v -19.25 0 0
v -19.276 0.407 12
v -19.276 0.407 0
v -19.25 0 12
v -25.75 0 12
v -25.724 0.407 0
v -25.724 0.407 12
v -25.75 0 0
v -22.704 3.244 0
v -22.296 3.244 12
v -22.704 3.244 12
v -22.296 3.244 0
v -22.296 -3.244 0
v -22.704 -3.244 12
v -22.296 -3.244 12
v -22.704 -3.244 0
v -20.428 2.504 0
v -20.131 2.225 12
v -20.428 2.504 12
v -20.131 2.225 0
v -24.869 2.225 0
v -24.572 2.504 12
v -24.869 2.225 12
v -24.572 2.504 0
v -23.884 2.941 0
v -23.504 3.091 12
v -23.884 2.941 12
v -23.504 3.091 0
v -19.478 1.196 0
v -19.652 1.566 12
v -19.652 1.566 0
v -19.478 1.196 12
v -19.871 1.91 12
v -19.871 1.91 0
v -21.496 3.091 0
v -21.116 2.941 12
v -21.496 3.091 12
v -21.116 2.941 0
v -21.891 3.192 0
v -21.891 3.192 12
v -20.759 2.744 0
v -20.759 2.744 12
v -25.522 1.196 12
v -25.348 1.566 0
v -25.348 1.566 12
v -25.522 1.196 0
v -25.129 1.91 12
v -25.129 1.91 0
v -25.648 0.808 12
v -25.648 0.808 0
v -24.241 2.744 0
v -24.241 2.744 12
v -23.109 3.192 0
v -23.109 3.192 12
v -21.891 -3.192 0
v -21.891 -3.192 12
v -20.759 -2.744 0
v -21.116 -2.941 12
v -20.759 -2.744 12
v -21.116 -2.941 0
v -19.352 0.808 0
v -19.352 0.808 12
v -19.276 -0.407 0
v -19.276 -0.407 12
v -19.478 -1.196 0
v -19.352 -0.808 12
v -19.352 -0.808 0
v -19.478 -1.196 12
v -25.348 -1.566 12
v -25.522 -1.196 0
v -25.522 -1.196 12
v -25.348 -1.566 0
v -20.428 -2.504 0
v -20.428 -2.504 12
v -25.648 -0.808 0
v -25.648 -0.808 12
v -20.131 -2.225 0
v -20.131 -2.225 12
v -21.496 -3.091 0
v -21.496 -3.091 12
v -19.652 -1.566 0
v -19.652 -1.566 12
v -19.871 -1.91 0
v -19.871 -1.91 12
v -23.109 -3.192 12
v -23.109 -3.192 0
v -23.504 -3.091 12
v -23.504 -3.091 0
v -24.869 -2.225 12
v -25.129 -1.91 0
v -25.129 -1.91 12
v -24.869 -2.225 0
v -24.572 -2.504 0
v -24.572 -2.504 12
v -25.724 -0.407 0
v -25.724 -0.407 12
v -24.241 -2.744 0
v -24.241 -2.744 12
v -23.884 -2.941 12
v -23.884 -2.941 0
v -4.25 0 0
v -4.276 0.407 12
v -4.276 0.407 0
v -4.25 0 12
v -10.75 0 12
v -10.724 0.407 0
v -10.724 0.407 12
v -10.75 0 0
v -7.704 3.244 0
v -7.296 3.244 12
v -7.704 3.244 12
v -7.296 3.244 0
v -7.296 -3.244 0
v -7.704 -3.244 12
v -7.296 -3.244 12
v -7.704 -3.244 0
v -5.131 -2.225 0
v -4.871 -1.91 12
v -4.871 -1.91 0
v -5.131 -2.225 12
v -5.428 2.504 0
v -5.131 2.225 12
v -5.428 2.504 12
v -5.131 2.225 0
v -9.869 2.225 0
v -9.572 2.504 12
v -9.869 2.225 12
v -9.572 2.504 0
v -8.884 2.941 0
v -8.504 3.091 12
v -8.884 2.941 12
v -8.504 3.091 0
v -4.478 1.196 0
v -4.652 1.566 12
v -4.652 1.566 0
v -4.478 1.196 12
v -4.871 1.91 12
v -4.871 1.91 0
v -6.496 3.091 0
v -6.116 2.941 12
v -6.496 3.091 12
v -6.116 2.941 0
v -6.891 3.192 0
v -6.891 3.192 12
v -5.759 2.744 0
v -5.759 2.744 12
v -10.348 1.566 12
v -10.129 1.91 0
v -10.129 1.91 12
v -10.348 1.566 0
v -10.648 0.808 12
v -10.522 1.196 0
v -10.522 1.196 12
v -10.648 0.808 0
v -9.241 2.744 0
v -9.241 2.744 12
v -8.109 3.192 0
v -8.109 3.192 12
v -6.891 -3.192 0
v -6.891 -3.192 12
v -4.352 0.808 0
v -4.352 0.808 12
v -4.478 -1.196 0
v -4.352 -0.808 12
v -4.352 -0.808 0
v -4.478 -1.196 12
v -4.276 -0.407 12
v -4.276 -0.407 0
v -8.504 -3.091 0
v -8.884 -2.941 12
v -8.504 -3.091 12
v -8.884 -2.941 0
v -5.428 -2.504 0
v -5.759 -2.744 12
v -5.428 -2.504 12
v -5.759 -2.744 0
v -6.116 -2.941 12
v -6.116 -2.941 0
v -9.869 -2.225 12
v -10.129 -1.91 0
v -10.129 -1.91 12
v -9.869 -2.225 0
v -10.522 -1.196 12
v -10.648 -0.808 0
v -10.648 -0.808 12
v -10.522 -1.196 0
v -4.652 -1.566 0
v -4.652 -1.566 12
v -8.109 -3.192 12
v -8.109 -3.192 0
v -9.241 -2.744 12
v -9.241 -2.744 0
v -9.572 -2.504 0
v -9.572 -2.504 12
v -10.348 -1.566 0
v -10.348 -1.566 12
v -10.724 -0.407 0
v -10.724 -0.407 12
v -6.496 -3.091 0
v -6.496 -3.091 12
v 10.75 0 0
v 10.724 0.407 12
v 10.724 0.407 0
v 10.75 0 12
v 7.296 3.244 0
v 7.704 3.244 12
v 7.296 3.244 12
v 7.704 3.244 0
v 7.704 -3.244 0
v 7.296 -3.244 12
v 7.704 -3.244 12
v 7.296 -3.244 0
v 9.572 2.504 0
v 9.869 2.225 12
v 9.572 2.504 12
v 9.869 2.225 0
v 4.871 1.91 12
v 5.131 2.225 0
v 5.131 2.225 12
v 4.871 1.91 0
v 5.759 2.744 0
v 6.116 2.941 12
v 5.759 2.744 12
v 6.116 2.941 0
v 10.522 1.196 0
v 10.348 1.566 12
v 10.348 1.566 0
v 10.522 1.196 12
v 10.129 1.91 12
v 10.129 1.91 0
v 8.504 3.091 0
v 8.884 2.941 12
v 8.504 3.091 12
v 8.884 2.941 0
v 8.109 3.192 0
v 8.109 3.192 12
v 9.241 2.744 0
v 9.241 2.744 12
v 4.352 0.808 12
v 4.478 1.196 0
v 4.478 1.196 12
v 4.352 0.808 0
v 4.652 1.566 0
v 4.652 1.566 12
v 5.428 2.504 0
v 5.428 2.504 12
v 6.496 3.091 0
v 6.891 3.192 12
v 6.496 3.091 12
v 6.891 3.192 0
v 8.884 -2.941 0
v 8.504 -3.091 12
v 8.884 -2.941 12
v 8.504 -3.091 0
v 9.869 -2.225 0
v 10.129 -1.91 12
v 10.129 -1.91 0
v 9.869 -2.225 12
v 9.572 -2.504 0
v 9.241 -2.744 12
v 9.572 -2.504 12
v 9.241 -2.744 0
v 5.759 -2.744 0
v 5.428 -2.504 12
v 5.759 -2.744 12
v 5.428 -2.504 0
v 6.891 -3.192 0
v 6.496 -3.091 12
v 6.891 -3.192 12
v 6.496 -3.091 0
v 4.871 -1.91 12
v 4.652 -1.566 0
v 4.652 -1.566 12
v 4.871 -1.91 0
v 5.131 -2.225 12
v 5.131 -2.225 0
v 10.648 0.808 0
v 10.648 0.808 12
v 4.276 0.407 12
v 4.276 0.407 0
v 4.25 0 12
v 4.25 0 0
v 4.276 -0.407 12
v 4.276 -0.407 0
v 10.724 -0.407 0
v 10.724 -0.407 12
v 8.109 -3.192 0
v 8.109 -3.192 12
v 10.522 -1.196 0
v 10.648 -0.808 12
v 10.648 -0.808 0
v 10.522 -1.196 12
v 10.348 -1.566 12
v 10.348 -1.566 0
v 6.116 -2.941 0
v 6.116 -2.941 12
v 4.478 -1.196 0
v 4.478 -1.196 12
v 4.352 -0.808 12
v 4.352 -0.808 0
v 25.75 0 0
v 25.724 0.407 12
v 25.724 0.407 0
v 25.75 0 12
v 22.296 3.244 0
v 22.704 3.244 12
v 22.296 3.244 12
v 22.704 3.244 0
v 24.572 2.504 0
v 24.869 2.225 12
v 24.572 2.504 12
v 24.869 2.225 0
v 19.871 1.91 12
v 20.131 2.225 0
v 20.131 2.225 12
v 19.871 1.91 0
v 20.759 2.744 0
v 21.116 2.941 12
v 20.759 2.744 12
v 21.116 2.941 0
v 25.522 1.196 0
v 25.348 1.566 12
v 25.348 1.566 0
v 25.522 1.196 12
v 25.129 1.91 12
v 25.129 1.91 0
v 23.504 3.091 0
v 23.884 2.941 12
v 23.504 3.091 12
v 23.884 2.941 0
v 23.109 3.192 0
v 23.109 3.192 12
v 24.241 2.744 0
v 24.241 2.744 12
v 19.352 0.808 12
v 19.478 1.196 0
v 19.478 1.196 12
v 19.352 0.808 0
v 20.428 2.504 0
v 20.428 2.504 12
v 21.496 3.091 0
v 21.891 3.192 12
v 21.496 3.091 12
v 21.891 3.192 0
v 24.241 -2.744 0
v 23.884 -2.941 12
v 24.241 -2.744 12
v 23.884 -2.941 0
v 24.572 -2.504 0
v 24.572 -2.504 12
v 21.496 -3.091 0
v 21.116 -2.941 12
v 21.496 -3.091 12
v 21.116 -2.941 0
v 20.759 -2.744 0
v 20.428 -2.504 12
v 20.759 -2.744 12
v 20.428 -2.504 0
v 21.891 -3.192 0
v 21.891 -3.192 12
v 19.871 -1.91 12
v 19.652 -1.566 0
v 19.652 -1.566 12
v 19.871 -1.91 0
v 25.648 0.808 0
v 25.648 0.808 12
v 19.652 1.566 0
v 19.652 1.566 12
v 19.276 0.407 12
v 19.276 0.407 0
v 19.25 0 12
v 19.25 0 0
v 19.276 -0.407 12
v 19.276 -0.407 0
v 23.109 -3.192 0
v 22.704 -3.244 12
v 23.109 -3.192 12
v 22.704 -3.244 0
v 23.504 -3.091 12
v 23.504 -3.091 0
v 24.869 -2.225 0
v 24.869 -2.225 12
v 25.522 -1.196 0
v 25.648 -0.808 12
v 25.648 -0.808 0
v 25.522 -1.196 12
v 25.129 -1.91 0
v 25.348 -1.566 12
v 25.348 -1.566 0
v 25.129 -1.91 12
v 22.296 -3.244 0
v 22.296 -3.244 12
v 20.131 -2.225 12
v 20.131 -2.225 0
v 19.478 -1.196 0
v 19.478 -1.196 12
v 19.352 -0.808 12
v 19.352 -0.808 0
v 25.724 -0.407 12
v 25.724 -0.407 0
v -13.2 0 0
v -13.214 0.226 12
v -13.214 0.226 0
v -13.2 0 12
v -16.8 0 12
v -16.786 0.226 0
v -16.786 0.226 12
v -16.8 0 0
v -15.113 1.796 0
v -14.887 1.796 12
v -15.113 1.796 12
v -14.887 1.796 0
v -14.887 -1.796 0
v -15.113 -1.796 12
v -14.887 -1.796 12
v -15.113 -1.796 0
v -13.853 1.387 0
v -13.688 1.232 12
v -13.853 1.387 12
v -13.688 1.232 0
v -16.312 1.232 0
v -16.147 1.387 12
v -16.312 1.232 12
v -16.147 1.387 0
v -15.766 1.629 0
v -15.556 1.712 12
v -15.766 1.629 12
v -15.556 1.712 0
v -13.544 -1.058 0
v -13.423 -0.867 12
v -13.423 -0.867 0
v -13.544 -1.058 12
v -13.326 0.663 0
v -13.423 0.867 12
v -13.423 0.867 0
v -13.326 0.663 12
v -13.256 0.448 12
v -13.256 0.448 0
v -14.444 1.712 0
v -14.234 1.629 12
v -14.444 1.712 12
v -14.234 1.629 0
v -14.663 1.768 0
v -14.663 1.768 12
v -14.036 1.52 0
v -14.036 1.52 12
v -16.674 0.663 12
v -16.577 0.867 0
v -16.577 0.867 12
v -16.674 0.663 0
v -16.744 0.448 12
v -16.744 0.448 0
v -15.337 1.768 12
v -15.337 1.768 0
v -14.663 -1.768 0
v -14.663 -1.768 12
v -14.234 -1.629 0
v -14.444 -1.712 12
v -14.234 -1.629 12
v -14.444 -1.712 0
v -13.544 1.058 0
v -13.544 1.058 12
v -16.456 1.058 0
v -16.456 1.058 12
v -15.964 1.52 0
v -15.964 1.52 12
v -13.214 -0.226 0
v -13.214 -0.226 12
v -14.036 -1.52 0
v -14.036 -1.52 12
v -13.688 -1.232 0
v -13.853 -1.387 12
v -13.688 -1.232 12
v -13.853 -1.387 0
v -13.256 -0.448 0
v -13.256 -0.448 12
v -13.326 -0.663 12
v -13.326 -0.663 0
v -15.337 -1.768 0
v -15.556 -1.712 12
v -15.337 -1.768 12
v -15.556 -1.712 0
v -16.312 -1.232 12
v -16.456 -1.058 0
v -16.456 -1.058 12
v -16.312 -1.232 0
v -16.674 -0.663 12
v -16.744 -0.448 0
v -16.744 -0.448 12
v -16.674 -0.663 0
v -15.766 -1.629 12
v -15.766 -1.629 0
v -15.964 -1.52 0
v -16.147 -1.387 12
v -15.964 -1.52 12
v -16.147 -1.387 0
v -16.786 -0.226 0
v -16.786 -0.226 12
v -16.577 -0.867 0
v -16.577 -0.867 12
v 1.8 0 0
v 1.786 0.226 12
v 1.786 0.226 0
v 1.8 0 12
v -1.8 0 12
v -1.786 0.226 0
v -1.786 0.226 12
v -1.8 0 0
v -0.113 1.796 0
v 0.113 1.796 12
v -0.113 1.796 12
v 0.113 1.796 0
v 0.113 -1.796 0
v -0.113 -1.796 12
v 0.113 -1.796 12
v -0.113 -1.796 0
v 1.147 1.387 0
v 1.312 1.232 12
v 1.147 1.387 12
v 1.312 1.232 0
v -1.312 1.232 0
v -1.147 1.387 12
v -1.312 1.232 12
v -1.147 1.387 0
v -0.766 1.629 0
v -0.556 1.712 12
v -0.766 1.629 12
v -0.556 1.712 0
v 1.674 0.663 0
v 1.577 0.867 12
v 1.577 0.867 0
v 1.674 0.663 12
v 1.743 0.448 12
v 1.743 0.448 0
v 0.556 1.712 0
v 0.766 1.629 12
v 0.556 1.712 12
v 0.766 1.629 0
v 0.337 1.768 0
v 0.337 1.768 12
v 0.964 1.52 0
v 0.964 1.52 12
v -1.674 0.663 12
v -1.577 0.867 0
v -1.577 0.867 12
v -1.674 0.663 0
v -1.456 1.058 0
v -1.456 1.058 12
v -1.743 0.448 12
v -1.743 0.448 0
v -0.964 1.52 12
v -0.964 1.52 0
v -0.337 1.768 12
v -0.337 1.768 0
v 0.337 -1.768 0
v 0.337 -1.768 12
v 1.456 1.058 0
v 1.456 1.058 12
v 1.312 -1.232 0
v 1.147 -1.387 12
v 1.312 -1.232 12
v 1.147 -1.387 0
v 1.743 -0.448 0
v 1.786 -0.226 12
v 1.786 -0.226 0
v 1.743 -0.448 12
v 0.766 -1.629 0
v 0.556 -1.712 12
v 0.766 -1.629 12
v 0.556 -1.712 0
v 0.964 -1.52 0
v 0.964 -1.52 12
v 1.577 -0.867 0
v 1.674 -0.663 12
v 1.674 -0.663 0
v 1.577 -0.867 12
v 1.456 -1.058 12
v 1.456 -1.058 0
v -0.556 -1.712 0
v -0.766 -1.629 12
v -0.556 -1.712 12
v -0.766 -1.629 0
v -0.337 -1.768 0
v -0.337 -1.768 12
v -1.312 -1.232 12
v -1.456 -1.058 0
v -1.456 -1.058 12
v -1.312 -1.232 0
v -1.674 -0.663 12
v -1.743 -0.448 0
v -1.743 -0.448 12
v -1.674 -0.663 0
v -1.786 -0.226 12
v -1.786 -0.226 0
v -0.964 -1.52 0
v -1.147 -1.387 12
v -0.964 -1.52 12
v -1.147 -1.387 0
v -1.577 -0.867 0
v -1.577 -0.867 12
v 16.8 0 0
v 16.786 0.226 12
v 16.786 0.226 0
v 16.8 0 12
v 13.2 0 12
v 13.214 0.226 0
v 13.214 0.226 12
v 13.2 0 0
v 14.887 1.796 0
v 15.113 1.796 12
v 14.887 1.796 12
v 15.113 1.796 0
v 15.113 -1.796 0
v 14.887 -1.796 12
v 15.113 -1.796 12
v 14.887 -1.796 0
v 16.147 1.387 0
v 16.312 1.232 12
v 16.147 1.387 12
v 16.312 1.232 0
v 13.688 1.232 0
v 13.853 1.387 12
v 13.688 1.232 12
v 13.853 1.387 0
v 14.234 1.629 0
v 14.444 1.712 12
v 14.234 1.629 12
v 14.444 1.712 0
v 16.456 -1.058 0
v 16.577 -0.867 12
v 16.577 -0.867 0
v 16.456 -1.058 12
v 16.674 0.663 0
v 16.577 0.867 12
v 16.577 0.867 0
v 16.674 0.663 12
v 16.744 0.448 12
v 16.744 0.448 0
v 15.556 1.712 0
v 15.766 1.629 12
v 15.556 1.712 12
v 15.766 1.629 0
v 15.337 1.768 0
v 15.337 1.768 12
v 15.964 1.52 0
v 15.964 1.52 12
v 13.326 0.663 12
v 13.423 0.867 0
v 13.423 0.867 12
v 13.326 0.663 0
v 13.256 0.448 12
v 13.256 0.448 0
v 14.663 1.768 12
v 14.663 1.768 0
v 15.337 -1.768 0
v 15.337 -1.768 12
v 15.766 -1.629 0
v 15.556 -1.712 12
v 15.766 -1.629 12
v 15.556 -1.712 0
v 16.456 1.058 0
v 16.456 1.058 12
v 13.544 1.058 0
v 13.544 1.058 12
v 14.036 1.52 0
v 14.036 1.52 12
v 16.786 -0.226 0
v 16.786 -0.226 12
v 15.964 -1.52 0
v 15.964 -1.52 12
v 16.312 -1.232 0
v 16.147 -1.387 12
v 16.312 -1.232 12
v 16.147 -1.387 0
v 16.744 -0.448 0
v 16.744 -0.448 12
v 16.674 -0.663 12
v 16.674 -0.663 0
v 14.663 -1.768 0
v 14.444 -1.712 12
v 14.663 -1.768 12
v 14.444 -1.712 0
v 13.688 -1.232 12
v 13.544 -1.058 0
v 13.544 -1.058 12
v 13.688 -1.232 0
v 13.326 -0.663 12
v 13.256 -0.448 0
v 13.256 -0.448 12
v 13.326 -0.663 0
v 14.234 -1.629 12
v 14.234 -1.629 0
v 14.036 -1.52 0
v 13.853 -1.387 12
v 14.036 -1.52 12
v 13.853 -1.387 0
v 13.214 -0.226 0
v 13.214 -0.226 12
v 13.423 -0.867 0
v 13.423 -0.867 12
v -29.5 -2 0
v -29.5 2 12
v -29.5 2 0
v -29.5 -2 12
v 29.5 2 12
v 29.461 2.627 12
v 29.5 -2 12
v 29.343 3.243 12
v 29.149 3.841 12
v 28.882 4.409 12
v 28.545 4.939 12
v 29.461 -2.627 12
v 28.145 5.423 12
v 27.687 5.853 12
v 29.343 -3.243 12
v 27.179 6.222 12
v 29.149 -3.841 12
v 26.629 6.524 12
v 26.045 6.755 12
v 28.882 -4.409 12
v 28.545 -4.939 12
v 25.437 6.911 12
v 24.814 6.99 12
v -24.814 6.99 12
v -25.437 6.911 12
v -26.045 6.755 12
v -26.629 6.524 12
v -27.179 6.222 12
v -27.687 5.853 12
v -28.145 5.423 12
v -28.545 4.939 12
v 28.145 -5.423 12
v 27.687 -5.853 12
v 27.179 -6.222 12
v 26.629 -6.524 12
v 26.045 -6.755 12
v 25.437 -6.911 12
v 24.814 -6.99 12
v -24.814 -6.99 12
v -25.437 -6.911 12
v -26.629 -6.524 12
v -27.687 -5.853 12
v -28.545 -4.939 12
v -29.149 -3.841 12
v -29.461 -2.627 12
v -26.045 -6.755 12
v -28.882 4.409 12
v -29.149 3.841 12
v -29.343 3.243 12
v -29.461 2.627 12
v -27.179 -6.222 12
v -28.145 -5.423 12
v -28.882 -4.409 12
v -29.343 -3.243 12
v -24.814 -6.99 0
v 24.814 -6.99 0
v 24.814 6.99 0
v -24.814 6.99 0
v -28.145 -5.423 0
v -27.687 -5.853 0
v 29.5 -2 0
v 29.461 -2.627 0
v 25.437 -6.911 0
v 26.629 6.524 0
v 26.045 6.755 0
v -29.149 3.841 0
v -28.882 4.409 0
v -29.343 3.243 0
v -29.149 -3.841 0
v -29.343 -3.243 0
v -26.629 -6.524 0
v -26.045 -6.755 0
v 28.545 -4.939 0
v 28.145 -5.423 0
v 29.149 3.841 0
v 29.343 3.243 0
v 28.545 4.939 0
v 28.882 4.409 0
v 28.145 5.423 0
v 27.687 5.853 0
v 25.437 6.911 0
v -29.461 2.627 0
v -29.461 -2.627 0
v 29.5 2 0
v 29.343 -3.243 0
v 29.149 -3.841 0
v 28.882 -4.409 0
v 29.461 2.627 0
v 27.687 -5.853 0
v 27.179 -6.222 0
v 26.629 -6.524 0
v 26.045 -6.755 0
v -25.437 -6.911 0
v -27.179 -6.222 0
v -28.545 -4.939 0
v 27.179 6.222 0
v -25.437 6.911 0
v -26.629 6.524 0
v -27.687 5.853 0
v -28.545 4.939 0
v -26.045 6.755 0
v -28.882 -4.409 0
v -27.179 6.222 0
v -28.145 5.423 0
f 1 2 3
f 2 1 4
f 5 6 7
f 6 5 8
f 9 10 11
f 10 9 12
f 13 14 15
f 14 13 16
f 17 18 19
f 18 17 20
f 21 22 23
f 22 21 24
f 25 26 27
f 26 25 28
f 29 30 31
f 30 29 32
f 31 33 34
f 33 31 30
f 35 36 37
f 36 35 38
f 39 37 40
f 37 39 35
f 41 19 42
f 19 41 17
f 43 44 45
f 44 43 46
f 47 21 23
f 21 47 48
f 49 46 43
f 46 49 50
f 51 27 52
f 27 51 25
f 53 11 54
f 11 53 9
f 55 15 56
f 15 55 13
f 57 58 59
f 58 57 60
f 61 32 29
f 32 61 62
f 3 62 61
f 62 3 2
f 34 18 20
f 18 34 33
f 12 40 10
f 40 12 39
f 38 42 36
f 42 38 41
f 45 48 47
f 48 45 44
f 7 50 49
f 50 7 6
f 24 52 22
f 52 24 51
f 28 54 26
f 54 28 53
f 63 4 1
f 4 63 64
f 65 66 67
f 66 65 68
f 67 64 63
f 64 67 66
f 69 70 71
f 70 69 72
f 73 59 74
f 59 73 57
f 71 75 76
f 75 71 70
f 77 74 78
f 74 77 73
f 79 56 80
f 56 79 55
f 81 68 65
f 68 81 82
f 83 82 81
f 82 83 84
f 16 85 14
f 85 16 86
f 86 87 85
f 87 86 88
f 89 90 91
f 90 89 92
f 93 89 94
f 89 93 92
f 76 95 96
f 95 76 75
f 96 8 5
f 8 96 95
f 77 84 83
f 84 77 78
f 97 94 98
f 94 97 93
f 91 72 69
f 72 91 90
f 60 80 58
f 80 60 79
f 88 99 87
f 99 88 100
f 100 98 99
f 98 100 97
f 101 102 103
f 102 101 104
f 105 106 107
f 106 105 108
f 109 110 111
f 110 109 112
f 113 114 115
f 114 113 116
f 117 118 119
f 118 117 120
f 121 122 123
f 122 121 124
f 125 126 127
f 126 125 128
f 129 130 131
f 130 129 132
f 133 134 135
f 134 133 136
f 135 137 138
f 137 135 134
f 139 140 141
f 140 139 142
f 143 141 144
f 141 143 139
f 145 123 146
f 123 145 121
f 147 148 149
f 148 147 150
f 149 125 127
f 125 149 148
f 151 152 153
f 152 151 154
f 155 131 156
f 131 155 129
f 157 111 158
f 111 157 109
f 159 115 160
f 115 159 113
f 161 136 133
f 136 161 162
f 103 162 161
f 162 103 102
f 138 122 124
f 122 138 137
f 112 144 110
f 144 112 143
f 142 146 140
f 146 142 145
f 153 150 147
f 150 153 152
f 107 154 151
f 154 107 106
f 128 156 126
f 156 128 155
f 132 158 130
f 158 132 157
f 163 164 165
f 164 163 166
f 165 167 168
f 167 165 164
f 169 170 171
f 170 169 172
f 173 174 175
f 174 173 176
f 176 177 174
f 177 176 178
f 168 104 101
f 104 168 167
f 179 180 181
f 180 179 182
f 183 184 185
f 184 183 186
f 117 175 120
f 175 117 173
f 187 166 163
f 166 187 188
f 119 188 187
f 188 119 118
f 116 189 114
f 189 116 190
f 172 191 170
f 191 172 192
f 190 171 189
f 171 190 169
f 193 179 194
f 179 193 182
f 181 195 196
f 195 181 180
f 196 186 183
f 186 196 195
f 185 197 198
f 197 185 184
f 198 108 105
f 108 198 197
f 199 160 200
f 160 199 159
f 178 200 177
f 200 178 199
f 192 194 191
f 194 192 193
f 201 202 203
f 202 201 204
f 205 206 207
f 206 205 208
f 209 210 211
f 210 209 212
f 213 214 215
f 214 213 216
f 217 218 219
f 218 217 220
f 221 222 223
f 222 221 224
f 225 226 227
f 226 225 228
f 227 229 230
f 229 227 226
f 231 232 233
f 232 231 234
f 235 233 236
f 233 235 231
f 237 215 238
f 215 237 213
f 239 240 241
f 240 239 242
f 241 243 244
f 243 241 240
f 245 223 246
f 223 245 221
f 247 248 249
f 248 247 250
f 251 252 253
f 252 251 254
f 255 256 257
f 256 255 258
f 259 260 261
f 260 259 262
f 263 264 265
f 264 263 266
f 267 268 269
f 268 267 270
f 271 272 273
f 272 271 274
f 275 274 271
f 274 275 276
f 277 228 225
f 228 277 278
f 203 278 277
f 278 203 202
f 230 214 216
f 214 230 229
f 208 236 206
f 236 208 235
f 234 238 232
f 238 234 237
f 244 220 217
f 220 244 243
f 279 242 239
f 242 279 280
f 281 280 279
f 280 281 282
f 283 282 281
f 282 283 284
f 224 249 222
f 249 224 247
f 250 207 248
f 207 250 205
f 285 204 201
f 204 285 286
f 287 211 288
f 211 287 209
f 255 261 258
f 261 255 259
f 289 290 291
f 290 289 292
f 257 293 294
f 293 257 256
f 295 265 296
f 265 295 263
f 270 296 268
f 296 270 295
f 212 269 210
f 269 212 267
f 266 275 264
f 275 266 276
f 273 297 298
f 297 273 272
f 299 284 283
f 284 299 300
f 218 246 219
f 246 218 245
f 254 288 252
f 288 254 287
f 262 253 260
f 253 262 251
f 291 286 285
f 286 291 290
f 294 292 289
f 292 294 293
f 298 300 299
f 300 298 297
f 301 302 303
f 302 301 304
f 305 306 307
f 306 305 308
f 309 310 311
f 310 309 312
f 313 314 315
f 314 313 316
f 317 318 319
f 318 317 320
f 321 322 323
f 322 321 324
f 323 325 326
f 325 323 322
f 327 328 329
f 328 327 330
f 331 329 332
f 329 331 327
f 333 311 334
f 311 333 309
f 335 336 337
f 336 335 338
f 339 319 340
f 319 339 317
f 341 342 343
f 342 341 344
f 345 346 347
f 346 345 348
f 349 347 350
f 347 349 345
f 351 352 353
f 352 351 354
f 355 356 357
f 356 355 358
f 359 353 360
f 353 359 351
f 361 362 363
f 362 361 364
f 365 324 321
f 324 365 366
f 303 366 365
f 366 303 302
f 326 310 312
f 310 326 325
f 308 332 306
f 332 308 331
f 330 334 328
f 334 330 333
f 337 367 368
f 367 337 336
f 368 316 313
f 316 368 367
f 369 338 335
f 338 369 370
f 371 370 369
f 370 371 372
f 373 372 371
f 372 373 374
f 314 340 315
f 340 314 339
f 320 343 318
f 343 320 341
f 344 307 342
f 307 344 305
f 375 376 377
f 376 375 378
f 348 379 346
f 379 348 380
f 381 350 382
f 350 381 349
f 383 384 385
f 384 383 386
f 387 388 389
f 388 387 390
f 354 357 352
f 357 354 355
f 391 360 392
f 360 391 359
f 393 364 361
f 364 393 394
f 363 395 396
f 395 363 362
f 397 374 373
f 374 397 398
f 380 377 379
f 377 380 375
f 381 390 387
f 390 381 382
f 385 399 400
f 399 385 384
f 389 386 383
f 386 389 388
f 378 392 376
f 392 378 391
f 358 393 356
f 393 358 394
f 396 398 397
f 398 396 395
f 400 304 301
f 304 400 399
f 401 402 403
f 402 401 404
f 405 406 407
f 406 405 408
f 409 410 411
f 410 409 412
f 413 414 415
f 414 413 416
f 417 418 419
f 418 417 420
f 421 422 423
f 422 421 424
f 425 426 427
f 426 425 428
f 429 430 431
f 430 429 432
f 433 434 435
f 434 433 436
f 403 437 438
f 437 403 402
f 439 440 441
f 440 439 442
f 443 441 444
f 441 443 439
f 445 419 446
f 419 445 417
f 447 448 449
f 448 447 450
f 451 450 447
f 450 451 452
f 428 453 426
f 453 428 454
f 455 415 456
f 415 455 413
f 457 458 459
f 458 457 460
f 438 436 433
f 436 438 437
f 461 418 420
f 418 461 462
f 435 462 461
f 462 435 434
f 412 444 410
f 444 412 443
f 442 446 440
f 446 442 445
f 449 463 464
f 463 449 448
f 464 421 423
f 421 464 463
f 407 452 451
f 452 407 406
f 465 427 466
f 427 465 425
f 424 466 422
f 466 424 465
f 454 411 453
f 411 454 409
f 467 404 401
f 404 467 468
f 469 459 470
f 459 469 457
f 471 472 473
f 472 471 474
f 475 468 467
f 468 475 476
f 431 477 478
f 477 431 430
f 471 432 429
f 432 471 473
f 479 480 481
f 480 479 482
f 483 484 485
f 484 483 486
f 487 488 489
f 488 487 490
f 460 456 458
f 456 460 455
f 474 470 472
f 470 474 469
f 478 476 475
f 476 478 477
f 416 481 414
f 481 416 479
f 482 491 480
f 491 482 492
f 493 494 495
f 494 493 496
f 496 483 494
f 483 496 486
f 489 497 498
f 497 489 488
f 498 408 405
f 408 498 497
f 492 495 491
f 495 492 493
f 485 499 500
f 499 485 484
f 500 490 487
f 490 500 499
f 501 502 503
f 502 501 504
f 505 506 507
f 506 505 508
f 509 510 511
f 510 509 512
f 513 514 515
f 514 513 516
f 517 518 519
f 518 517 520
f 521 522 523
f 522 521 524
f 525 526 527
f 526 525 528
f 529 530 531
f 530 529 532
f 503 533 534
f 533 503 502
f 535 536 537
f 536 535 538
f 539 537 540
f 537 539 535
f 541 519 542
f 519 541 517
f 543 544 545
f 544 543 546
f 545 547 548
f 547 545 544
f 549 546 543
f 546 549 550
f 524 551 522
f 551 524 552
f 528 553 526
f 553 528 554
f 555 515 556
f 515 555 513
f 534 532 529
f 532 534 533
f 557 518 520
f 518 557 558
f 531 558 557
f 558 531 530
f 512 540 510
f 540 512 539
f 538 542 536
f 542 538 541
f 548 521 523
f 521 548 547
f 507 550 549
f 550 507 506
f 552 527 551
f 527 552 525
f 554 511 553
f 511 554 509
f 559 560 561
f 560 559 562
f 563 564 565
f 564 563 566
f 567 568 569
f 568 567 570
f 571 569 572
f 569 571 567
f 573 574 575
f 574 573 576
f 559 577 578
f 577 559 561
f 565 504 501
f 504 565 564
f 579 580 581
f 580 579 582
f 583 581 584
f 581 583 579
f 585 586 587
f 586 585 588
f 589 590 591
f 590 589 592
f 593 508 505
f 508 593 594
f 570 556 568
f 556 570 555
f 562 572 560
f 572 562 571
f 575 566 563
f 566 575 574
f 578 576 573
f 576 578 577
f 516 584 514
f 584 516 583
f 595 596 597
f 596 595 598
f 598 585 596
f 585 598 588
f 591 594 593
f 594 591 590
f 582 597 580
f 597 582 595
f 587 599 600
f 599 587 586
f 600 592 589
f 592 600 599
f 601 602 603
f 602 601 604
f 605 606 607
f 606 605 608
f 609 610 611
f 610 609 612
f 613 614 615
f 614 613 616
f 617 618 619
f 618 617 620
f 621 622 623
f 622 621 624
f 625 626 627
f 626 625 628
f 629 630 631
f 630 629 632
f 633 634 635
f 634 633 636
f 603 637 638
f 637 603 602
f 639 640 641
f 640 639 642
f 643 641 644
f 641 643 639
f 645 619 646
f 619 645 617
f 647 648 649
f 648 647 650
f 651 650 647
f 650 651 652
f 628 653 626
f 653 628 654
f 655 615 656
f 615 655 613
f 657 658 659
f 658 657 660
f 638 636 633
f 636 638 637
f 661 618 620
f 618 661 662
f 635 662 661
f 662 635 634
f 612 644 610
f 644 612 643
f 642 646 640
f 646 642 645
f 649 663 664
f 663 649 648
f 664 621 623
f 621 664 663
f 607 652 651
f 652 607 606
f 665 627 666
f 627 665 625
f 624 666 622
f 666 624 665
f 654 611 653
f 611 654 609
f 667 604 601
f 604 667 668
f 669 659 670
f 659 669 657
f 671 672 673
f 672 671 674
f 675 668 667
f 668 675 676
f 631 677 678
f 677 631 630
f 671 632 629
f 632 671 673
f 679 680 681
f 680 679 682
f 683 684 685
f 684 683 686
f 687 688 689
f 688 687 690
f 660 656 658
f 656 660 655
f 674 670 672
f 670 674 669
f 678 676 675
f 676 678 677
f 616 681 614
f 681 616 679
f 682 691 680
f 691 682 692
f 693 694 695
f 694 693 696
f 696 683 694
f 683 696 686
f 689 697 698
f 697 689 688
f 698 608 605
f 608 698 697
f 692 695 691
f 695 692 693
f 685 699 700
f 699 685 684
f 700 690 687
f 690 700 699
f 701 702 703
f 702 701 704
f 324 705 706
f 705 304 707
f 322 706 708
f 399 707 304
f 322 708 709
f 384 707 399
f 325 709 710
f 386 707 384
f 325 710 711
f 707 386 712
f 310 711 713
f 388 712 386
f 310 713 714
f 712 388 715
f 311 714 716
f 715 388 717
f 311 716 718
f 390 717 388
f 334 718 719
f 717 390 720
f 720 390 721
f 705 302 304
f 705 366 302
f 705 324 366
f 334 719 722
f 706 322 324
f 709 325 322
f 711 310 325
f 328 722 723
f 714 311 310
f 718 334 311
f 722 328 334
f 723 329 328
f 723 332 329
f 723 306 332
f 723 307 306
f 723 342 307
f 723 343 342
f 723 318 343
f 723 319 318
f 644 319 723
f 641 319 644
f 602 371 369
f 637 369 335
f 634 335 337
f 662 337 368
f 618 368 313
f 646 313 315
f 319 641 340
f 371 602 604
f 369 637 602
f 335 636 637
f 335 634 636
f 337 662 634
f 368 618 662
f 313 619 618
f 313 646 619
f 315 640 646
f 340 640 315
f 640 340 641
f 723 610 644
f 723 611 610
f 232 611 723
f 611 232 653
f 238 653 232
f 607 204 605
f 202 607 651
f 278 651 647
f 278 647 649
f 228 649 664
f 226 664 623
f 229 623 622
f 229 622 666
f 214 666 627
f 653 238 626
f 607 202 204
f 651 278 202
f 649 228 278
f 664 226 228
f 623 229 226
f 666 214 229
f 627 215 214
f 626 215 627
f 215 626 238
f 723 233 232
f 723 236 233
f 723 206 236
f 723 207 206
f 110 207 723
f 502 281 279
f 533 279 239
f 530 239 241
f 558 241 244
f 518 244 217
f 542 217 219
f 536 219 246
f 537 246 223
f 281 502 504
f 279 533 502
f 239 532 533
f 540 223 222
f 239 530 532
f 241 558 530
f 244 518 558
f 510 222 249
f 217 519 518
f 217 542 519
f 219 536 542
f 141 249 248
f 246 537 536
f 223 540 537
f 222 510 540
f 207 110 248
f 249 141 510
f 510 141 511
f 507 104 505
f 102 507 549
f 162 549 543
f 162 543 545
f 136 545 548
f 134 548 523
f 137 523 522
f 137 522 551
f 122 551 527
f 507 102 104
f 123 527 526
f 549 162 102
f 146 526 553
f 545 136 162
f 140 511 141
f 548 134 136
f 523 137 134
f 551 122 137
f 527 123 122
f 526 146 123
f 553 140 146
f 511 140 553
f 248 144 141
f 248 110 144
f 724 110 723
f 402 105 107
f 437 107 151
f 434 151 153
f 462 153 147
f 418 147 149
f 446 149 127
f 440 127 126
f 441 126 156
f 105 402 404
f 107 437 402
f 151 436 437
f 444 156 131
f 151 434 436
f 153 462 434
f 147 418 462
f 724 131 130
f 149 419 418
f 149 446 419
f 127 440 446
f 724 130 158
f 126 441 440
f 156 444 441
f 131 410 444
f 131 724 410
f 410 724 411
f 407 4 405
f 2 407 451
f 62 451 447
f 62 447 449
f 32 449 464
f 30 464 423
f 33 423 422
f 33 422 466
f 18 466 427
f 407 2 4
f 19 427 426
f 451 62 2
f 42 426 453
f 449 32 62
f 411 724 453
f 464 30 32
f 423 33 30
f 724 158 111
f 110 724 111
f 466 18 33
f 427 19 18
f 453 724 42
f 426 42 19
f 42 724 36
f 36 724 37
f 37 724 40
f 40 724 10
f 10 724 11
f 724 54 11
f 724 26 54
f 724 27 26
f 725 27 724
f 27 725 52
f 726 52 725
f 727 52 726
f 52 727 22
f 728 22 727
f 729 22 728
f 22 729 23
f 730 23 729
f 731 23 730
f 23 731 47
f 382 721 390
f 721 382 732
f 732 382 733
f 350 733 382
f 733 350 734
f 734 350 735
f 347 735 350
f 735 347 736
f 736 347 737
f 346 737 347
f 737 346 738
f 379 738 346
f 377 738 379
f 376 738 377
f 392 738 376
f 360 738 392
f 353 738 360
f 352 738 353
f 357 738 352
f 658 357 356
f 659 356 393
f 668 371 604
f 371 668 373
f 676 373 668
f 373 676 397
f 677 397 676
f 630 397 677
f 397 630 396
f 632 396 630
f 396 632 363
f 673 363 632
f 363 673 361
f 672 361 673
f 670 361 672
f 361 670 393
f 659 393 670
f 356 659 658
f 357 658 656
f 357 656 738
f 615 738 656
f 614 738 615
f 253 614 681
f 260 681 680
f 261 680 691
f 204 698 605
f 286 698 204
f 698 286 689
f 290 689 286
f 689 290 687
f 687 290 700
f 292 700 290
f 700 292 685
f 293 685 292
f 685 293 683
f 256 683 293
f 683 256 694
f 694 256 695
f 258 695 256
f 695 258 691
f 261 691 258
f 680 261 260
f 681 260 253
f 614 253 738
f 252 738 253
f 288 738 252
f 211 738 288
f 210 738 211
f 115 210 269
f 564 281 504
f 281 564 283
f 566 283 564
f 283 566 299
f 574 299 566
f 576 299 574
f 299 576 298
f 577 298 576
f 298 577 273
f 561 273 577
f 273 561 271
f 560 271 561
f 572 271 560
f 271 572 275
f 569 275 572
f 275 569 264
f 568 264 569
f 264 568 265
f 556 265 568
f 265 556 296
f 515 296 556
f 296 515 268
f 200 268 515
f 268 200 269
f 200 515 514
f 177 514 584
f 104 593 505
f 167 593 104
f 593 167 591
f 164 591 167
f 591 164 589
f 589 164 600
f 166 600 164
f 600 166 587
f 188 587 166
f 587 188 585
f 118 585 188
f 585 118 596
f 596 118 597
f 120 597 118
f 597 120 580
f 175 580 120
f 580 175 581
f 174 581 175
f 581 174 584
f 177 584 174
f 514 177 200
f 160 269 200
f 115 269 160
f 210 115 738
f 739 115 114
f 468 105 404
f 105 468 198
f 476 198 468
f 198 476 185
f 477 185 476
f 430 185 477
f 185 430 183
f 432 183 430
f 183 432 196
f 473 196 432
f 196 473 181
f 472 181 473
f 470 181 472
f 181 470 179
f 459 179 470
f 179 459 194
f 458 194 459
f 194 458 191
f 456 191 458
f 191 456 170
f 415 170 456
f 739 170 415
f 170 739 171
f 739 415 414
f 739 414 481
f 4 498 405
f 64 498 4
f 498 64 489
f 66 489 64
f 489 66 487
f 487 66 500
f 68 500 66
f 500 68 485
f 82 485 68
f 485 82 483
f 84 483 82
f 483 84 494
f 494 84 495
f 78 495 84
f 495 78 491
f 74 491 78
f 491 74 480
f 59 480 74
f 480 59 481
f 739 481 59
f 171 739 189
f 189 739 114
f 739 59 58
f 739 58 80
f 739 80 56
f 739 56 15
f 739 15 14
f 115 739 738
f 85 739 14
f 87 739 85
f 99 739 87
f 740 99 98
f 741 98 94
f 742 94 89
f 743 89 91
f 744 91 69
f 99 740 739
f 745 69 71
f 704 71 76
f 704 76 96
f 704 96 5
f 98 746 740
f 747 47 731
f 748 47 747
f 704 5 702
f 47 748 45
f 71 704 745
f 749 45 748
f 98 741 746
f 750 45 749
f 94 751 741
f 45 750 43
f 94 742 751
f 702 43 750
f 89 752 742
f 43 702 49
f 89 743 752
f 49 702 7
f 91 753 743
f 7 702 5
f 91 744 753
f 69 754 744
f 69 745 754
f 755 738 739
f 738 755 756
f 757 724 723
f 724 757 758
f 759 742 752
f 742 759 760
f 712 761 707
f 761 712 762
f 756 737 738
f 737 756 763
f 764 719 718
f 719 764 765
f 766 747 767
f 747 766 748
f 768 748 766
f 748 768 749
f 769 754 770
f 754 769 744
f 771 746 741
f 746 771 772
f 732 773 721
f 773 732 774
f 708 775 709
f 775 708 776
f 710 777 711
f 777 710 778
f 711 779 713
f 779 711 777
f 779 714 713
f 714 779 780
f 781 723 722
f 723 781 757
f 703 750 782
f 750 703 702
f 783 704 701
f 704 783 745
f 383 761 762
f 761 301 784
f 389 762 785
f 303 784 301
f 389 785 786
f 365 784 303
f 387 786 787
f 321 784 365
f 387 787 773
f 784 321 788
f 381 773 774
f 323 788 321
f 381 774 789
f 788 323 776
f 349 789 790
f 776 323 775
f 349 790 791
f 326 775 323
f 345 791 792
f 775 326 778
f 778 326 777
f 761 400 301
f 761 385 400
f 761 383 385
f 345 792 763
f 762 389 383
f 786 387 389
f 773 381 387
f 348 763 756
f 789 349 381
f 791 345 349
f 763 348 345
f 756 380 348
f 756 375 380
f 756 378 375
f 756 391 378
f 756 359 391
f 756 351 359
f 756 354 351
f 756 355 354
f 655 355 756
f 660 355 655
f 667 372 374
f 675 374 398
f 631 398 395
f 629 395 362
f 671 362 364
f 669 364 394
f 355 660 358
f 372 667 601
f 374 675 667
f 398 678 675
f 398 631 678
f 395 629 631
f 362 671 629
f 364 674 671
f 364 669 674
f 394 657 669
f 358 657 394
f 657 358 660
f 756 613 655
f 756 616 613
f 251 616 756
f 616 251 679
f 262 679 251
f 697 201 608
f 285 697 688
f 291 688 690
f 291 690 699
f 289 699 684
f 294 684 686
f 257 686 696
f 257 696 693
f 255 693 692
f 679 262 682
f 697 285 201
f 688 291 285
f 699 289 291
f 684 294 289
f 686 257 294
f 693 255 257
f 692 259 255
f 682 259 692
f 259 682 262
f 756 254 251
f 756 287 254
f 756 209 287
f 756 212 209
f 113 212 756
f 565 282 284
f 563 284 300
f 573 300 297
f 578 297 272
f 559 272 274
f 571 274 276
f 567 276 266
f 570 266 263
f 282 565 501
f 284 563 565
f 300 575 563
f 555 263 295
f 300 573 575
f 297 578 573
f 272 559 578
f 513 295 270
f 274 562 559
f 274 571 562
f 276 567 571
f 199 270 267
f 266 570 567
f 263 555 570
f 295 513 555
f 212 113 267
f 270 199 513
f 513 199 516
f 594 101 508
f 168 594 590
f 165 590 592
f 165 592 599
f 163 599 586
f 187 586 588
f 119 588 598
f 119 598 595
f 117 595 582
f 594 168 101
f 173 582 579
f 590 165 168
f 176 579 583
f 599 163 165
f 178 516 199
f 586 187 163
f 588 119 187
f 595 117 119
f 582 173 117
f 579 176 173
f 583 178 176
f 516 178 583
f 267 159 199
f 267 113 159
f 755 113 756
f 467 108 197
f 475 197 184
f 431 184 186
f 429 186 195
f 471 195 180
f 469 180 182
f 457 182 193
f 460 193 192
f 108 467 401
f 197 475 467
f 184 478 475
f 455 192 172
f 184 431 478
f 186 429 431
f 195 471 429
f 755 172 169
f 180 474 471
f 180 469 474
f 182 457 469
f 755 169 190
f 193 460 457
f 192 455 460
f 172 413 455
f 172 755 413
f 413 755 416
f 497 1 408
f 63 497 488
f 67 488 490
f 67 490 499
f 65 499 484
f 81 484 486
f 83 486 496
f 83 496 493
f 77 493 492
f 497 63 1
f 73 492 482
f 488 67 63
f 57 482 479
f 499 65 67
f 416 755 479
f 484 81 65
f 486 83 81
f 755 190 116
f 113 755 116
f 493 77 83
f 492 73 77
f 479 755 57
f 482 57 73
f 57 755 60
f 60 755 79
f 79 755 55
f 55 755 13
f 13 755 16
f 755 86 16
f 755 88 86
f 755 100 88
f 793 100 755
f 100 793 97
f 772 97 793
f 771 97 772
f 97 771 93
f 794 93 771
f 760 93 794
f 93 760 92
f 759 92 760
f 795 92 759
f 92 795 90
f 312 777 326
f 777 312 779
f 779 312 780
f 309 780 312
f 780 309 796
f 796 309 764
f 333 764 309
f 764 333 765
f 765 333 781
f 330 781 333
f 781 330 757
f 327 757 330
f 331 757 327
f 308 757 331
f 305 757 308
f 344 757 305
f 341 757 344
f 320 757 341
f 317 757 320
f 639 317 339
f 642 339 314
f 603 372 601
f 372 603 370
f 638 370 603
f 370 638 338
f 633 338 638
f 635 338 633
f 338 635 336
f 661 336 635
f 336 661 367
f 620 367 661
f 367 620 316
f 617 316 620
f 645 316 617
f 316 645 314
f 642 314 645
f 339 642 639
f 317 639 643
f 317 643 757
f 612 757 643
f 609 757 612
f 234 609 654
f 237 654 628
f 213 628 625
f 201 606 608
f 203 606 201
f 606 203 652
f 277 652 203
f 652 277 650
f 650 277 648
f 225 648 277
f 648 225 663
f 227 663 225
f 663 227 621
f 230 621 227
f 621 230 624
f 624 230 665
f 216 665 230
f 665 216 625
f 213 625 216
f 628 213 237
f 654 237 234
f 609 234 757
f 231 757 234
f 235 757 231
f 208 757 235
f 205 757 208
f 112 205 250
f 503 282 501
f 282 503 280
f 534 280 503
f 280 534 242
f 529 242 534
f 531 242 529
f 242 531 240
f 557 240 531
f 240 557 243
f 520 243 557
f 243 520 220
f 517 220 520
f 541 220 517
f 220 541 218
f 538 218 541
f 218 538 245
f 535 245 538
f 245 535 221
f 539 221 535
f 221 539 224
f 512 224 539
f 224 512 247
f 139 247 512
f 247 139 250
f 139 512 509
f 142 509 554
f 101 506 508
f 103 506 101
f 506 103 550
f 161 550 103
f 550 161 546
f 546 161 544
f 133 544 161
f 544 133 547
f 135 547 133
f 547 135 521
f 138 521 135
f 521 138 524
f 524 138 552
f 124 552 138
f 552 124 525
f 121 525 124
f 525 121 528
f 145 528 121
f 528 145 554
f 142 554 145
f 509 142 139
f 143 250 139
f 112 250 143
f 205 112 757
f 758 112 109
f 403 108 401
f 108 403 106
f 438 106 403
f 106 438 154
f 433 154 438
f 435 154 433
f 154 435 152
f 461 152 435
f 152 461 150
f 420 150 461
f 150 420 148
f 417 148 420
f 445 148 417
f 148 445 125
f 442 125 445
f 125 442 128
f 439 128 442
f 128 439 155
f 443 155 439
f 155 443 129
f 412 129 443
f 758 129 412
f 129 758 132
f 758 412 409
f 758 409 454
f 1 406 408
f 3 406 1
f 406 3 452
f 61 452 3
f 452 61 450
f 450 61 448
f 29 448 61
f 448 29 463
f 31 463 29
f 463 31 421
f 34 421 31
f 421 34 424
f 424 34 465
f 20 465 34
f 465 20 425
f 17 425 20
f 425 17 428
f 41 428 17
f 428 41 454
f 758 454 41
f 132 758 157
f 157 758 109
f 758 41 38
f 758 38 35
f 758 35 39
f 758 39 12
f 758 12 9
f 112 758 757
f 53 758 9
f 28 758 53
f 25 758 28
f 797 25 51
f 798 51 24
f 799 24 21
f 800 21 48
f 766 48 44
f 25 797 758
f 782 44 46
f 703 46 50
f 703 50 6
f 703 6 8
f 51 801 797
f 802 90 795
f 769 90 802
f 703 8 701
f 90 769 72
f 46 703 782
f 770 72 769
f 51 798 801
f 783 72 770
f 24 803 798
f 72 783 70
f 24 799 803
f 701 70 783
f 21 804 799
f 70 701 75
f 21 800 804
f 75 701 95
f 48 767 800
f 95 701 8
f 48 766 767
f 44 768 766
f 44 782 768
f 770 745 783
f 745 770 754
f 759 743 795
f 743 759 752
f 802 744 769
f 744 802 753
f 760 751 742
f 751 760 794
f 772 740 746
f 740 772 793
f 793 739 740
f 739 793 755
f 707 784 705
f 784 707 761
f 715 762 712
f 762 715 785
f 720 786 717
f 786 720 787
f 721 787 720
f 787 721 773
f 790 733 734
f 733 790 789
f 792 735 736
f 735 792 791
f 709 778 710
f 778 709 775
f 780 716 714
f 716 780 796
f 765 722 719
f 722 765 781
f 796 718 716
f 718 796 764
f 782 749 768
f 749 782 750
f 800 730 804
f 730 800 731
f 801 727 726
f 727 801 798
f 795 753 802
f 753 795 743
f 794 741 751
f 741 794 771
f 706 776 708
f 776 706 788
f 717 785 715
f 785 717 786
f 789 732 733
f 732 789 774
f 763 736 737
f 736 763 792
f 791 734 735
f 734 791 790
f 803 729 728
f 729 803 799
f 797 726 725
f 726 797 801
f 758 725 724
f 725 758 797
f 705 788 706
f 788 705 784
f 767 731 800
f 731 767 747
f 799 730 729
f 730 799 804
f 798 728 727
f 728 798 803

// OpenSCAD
$fn = 50;


difference() {
	union() {
		translate(v = [0, 0, 0]) {
			rotate(a = [0, 0, 0]) {
				hull() {
					translate(v = [-24.5000000000, 2.0000000000, 0]) {
						rotate(a = [0, 0, 0]) {
							translate(v = [0, 0, 0]) {
								rotate(a = [0, 0, 0]) {
									cylinder(h = 12, r = 5);
								}
							}
						}
					}
					translate(v = [24.5000000000, 2.0000000000, 0]) {
						rotate(a = [0, 0, 0]) {
							translate(v = [0, 0, 0]) {
								rotate(a = [0, 0, 0]) {
									cylinder(h = 12, r = 5);
								}
							}
						}
					}
					translate(v = [-24.5000000000, -2.0000000000, 0]) {
						rotate(a = [0, 0, 0]) {
							translate(v = [0, 0, 0]) {
								rotate(a = [0, 0, 0]) {
									cylinder(h = 12, r = 5);
								}
							}
						}
					}
					translate(v = [24.5000000000, -2.0000000000, 0]) {
						rotate(a = [0, 0, 0]) {
							translate(v = [0, 0, 0]) {
								rotate(a = [0, 0, 0]) {
									cylinder(h = 12, r = 5);
								}
							}
						}
					}
				}
			}
		}
	}
	union() {
		translate(v = [-22.5000000000, 0.0000000000, 0]) {
			rotate(a = [0, 0, 0]) {
				translate(v = [0, 0, -50]) {
					rotate(a = [0, 0, 0]) {
						cylinder(h = 100, r = 3.2500000000);
					}
				}
			}
		}
		translate(v = [-7.5000000000, 0.0000000000, 0]) {
			rotate(a = [0, 0, 0]) {
				translate(v = [0, 0, -50]) {
					rotate(a = [0, 0, 0]) {
						cylinder(h = 100, r = 3.2500000000);
					}
				}
			}
		}
		translate(v = [7.5000000000, 0.0000000000, 0]) {
			rotate(a = [0, 0, 0]) {
				translate(v = [0, 0, -50]) {
					rotate(a = [0, 0, 0]) {
						cylinder(h = 100, r = 3.2500000000);
					}
				}
			}
		}
		translate(v = [22.5000000000, 0.0000000000, 0]) {
			rotate(a = [0, 0, 0]) {
				translate(v = [0, 0, -50]) {
					rotate(a = [0, 0, 0]) {
						cylinder(h = 100, r = 3.2500000000);
					}
				}
			}
		}
		translate(v = [-22.5000000000, 0.0000000000, 0]) {
			rotate(a = [0, 0, 0]) {
				translate(v = [0, 0, -50]) {
					rotate(a = [0, 0, 0]) {
						cylinder(h = 100, r = 1.8000000000);
					}
				}
			}
		}
		translate(v = [-15.0000000000, 0.0000000000, 0]) {
			rotate(a = [0, 0, 0]) {
				translate(v = [0, 0, -50]) {
					rotate(a = [0, 0, 0]) {
						cylinder(h = 100, r = 1.8000000000);
					}
				}
			}
		}
		translate(v = [-7.5000000000, 0.0000000000, 0]) {
			rotate(a = [0, 0, 0]) {
				translate(v = [0, 0, -50]) {
					rotate(a = [0, 0, 0]) {
						cylinder(h = 100, r = 1.8000000000);
					}
				}
			}
		}
		translate(v = [0.0000000000, 0.0000000000, 0]) {
			rotate(a = [0, 0, 0]) {
				translate(v = [0, 0, -50]) {
					rotate(a = [0, 0, 0]) {
						cylinder(h = 100, r = 1.8000000000);
					}
				}
			}
		}
		translate(v = [7.5000000000, 0.0000000000, 0]) {
			rotate(a = [0, 0, 0]) {
				translate(v = [0, 0, -50]) {
					rotate(a = [0, 0, 0]) {
						cylinder(h = 100, r = 1.8000000000);
					}
				}
			}
		}
		translate(v = [15.0000000000, 0.0000000000, 0]) {
			rotate(a = [0, 0, 0]) {
				translate(v = [0, 0, -50]) {
					rotate(a = [0, 0, 0]) {
						cylinder(h = 100, r = 1.8000000000);
					}
				}
			}
		}
		translate(v = [22.5000000000, 0.0000000000, 0]) {
			rotate(a = [0, 0, 0]) {
				translate(v = [0, 0, -50]) {
					rotate(a = [0, 0, 0]) {
						cylinder(h = 100, r = 1.8000000000);
					}
				}
			}
		}
	}
}
